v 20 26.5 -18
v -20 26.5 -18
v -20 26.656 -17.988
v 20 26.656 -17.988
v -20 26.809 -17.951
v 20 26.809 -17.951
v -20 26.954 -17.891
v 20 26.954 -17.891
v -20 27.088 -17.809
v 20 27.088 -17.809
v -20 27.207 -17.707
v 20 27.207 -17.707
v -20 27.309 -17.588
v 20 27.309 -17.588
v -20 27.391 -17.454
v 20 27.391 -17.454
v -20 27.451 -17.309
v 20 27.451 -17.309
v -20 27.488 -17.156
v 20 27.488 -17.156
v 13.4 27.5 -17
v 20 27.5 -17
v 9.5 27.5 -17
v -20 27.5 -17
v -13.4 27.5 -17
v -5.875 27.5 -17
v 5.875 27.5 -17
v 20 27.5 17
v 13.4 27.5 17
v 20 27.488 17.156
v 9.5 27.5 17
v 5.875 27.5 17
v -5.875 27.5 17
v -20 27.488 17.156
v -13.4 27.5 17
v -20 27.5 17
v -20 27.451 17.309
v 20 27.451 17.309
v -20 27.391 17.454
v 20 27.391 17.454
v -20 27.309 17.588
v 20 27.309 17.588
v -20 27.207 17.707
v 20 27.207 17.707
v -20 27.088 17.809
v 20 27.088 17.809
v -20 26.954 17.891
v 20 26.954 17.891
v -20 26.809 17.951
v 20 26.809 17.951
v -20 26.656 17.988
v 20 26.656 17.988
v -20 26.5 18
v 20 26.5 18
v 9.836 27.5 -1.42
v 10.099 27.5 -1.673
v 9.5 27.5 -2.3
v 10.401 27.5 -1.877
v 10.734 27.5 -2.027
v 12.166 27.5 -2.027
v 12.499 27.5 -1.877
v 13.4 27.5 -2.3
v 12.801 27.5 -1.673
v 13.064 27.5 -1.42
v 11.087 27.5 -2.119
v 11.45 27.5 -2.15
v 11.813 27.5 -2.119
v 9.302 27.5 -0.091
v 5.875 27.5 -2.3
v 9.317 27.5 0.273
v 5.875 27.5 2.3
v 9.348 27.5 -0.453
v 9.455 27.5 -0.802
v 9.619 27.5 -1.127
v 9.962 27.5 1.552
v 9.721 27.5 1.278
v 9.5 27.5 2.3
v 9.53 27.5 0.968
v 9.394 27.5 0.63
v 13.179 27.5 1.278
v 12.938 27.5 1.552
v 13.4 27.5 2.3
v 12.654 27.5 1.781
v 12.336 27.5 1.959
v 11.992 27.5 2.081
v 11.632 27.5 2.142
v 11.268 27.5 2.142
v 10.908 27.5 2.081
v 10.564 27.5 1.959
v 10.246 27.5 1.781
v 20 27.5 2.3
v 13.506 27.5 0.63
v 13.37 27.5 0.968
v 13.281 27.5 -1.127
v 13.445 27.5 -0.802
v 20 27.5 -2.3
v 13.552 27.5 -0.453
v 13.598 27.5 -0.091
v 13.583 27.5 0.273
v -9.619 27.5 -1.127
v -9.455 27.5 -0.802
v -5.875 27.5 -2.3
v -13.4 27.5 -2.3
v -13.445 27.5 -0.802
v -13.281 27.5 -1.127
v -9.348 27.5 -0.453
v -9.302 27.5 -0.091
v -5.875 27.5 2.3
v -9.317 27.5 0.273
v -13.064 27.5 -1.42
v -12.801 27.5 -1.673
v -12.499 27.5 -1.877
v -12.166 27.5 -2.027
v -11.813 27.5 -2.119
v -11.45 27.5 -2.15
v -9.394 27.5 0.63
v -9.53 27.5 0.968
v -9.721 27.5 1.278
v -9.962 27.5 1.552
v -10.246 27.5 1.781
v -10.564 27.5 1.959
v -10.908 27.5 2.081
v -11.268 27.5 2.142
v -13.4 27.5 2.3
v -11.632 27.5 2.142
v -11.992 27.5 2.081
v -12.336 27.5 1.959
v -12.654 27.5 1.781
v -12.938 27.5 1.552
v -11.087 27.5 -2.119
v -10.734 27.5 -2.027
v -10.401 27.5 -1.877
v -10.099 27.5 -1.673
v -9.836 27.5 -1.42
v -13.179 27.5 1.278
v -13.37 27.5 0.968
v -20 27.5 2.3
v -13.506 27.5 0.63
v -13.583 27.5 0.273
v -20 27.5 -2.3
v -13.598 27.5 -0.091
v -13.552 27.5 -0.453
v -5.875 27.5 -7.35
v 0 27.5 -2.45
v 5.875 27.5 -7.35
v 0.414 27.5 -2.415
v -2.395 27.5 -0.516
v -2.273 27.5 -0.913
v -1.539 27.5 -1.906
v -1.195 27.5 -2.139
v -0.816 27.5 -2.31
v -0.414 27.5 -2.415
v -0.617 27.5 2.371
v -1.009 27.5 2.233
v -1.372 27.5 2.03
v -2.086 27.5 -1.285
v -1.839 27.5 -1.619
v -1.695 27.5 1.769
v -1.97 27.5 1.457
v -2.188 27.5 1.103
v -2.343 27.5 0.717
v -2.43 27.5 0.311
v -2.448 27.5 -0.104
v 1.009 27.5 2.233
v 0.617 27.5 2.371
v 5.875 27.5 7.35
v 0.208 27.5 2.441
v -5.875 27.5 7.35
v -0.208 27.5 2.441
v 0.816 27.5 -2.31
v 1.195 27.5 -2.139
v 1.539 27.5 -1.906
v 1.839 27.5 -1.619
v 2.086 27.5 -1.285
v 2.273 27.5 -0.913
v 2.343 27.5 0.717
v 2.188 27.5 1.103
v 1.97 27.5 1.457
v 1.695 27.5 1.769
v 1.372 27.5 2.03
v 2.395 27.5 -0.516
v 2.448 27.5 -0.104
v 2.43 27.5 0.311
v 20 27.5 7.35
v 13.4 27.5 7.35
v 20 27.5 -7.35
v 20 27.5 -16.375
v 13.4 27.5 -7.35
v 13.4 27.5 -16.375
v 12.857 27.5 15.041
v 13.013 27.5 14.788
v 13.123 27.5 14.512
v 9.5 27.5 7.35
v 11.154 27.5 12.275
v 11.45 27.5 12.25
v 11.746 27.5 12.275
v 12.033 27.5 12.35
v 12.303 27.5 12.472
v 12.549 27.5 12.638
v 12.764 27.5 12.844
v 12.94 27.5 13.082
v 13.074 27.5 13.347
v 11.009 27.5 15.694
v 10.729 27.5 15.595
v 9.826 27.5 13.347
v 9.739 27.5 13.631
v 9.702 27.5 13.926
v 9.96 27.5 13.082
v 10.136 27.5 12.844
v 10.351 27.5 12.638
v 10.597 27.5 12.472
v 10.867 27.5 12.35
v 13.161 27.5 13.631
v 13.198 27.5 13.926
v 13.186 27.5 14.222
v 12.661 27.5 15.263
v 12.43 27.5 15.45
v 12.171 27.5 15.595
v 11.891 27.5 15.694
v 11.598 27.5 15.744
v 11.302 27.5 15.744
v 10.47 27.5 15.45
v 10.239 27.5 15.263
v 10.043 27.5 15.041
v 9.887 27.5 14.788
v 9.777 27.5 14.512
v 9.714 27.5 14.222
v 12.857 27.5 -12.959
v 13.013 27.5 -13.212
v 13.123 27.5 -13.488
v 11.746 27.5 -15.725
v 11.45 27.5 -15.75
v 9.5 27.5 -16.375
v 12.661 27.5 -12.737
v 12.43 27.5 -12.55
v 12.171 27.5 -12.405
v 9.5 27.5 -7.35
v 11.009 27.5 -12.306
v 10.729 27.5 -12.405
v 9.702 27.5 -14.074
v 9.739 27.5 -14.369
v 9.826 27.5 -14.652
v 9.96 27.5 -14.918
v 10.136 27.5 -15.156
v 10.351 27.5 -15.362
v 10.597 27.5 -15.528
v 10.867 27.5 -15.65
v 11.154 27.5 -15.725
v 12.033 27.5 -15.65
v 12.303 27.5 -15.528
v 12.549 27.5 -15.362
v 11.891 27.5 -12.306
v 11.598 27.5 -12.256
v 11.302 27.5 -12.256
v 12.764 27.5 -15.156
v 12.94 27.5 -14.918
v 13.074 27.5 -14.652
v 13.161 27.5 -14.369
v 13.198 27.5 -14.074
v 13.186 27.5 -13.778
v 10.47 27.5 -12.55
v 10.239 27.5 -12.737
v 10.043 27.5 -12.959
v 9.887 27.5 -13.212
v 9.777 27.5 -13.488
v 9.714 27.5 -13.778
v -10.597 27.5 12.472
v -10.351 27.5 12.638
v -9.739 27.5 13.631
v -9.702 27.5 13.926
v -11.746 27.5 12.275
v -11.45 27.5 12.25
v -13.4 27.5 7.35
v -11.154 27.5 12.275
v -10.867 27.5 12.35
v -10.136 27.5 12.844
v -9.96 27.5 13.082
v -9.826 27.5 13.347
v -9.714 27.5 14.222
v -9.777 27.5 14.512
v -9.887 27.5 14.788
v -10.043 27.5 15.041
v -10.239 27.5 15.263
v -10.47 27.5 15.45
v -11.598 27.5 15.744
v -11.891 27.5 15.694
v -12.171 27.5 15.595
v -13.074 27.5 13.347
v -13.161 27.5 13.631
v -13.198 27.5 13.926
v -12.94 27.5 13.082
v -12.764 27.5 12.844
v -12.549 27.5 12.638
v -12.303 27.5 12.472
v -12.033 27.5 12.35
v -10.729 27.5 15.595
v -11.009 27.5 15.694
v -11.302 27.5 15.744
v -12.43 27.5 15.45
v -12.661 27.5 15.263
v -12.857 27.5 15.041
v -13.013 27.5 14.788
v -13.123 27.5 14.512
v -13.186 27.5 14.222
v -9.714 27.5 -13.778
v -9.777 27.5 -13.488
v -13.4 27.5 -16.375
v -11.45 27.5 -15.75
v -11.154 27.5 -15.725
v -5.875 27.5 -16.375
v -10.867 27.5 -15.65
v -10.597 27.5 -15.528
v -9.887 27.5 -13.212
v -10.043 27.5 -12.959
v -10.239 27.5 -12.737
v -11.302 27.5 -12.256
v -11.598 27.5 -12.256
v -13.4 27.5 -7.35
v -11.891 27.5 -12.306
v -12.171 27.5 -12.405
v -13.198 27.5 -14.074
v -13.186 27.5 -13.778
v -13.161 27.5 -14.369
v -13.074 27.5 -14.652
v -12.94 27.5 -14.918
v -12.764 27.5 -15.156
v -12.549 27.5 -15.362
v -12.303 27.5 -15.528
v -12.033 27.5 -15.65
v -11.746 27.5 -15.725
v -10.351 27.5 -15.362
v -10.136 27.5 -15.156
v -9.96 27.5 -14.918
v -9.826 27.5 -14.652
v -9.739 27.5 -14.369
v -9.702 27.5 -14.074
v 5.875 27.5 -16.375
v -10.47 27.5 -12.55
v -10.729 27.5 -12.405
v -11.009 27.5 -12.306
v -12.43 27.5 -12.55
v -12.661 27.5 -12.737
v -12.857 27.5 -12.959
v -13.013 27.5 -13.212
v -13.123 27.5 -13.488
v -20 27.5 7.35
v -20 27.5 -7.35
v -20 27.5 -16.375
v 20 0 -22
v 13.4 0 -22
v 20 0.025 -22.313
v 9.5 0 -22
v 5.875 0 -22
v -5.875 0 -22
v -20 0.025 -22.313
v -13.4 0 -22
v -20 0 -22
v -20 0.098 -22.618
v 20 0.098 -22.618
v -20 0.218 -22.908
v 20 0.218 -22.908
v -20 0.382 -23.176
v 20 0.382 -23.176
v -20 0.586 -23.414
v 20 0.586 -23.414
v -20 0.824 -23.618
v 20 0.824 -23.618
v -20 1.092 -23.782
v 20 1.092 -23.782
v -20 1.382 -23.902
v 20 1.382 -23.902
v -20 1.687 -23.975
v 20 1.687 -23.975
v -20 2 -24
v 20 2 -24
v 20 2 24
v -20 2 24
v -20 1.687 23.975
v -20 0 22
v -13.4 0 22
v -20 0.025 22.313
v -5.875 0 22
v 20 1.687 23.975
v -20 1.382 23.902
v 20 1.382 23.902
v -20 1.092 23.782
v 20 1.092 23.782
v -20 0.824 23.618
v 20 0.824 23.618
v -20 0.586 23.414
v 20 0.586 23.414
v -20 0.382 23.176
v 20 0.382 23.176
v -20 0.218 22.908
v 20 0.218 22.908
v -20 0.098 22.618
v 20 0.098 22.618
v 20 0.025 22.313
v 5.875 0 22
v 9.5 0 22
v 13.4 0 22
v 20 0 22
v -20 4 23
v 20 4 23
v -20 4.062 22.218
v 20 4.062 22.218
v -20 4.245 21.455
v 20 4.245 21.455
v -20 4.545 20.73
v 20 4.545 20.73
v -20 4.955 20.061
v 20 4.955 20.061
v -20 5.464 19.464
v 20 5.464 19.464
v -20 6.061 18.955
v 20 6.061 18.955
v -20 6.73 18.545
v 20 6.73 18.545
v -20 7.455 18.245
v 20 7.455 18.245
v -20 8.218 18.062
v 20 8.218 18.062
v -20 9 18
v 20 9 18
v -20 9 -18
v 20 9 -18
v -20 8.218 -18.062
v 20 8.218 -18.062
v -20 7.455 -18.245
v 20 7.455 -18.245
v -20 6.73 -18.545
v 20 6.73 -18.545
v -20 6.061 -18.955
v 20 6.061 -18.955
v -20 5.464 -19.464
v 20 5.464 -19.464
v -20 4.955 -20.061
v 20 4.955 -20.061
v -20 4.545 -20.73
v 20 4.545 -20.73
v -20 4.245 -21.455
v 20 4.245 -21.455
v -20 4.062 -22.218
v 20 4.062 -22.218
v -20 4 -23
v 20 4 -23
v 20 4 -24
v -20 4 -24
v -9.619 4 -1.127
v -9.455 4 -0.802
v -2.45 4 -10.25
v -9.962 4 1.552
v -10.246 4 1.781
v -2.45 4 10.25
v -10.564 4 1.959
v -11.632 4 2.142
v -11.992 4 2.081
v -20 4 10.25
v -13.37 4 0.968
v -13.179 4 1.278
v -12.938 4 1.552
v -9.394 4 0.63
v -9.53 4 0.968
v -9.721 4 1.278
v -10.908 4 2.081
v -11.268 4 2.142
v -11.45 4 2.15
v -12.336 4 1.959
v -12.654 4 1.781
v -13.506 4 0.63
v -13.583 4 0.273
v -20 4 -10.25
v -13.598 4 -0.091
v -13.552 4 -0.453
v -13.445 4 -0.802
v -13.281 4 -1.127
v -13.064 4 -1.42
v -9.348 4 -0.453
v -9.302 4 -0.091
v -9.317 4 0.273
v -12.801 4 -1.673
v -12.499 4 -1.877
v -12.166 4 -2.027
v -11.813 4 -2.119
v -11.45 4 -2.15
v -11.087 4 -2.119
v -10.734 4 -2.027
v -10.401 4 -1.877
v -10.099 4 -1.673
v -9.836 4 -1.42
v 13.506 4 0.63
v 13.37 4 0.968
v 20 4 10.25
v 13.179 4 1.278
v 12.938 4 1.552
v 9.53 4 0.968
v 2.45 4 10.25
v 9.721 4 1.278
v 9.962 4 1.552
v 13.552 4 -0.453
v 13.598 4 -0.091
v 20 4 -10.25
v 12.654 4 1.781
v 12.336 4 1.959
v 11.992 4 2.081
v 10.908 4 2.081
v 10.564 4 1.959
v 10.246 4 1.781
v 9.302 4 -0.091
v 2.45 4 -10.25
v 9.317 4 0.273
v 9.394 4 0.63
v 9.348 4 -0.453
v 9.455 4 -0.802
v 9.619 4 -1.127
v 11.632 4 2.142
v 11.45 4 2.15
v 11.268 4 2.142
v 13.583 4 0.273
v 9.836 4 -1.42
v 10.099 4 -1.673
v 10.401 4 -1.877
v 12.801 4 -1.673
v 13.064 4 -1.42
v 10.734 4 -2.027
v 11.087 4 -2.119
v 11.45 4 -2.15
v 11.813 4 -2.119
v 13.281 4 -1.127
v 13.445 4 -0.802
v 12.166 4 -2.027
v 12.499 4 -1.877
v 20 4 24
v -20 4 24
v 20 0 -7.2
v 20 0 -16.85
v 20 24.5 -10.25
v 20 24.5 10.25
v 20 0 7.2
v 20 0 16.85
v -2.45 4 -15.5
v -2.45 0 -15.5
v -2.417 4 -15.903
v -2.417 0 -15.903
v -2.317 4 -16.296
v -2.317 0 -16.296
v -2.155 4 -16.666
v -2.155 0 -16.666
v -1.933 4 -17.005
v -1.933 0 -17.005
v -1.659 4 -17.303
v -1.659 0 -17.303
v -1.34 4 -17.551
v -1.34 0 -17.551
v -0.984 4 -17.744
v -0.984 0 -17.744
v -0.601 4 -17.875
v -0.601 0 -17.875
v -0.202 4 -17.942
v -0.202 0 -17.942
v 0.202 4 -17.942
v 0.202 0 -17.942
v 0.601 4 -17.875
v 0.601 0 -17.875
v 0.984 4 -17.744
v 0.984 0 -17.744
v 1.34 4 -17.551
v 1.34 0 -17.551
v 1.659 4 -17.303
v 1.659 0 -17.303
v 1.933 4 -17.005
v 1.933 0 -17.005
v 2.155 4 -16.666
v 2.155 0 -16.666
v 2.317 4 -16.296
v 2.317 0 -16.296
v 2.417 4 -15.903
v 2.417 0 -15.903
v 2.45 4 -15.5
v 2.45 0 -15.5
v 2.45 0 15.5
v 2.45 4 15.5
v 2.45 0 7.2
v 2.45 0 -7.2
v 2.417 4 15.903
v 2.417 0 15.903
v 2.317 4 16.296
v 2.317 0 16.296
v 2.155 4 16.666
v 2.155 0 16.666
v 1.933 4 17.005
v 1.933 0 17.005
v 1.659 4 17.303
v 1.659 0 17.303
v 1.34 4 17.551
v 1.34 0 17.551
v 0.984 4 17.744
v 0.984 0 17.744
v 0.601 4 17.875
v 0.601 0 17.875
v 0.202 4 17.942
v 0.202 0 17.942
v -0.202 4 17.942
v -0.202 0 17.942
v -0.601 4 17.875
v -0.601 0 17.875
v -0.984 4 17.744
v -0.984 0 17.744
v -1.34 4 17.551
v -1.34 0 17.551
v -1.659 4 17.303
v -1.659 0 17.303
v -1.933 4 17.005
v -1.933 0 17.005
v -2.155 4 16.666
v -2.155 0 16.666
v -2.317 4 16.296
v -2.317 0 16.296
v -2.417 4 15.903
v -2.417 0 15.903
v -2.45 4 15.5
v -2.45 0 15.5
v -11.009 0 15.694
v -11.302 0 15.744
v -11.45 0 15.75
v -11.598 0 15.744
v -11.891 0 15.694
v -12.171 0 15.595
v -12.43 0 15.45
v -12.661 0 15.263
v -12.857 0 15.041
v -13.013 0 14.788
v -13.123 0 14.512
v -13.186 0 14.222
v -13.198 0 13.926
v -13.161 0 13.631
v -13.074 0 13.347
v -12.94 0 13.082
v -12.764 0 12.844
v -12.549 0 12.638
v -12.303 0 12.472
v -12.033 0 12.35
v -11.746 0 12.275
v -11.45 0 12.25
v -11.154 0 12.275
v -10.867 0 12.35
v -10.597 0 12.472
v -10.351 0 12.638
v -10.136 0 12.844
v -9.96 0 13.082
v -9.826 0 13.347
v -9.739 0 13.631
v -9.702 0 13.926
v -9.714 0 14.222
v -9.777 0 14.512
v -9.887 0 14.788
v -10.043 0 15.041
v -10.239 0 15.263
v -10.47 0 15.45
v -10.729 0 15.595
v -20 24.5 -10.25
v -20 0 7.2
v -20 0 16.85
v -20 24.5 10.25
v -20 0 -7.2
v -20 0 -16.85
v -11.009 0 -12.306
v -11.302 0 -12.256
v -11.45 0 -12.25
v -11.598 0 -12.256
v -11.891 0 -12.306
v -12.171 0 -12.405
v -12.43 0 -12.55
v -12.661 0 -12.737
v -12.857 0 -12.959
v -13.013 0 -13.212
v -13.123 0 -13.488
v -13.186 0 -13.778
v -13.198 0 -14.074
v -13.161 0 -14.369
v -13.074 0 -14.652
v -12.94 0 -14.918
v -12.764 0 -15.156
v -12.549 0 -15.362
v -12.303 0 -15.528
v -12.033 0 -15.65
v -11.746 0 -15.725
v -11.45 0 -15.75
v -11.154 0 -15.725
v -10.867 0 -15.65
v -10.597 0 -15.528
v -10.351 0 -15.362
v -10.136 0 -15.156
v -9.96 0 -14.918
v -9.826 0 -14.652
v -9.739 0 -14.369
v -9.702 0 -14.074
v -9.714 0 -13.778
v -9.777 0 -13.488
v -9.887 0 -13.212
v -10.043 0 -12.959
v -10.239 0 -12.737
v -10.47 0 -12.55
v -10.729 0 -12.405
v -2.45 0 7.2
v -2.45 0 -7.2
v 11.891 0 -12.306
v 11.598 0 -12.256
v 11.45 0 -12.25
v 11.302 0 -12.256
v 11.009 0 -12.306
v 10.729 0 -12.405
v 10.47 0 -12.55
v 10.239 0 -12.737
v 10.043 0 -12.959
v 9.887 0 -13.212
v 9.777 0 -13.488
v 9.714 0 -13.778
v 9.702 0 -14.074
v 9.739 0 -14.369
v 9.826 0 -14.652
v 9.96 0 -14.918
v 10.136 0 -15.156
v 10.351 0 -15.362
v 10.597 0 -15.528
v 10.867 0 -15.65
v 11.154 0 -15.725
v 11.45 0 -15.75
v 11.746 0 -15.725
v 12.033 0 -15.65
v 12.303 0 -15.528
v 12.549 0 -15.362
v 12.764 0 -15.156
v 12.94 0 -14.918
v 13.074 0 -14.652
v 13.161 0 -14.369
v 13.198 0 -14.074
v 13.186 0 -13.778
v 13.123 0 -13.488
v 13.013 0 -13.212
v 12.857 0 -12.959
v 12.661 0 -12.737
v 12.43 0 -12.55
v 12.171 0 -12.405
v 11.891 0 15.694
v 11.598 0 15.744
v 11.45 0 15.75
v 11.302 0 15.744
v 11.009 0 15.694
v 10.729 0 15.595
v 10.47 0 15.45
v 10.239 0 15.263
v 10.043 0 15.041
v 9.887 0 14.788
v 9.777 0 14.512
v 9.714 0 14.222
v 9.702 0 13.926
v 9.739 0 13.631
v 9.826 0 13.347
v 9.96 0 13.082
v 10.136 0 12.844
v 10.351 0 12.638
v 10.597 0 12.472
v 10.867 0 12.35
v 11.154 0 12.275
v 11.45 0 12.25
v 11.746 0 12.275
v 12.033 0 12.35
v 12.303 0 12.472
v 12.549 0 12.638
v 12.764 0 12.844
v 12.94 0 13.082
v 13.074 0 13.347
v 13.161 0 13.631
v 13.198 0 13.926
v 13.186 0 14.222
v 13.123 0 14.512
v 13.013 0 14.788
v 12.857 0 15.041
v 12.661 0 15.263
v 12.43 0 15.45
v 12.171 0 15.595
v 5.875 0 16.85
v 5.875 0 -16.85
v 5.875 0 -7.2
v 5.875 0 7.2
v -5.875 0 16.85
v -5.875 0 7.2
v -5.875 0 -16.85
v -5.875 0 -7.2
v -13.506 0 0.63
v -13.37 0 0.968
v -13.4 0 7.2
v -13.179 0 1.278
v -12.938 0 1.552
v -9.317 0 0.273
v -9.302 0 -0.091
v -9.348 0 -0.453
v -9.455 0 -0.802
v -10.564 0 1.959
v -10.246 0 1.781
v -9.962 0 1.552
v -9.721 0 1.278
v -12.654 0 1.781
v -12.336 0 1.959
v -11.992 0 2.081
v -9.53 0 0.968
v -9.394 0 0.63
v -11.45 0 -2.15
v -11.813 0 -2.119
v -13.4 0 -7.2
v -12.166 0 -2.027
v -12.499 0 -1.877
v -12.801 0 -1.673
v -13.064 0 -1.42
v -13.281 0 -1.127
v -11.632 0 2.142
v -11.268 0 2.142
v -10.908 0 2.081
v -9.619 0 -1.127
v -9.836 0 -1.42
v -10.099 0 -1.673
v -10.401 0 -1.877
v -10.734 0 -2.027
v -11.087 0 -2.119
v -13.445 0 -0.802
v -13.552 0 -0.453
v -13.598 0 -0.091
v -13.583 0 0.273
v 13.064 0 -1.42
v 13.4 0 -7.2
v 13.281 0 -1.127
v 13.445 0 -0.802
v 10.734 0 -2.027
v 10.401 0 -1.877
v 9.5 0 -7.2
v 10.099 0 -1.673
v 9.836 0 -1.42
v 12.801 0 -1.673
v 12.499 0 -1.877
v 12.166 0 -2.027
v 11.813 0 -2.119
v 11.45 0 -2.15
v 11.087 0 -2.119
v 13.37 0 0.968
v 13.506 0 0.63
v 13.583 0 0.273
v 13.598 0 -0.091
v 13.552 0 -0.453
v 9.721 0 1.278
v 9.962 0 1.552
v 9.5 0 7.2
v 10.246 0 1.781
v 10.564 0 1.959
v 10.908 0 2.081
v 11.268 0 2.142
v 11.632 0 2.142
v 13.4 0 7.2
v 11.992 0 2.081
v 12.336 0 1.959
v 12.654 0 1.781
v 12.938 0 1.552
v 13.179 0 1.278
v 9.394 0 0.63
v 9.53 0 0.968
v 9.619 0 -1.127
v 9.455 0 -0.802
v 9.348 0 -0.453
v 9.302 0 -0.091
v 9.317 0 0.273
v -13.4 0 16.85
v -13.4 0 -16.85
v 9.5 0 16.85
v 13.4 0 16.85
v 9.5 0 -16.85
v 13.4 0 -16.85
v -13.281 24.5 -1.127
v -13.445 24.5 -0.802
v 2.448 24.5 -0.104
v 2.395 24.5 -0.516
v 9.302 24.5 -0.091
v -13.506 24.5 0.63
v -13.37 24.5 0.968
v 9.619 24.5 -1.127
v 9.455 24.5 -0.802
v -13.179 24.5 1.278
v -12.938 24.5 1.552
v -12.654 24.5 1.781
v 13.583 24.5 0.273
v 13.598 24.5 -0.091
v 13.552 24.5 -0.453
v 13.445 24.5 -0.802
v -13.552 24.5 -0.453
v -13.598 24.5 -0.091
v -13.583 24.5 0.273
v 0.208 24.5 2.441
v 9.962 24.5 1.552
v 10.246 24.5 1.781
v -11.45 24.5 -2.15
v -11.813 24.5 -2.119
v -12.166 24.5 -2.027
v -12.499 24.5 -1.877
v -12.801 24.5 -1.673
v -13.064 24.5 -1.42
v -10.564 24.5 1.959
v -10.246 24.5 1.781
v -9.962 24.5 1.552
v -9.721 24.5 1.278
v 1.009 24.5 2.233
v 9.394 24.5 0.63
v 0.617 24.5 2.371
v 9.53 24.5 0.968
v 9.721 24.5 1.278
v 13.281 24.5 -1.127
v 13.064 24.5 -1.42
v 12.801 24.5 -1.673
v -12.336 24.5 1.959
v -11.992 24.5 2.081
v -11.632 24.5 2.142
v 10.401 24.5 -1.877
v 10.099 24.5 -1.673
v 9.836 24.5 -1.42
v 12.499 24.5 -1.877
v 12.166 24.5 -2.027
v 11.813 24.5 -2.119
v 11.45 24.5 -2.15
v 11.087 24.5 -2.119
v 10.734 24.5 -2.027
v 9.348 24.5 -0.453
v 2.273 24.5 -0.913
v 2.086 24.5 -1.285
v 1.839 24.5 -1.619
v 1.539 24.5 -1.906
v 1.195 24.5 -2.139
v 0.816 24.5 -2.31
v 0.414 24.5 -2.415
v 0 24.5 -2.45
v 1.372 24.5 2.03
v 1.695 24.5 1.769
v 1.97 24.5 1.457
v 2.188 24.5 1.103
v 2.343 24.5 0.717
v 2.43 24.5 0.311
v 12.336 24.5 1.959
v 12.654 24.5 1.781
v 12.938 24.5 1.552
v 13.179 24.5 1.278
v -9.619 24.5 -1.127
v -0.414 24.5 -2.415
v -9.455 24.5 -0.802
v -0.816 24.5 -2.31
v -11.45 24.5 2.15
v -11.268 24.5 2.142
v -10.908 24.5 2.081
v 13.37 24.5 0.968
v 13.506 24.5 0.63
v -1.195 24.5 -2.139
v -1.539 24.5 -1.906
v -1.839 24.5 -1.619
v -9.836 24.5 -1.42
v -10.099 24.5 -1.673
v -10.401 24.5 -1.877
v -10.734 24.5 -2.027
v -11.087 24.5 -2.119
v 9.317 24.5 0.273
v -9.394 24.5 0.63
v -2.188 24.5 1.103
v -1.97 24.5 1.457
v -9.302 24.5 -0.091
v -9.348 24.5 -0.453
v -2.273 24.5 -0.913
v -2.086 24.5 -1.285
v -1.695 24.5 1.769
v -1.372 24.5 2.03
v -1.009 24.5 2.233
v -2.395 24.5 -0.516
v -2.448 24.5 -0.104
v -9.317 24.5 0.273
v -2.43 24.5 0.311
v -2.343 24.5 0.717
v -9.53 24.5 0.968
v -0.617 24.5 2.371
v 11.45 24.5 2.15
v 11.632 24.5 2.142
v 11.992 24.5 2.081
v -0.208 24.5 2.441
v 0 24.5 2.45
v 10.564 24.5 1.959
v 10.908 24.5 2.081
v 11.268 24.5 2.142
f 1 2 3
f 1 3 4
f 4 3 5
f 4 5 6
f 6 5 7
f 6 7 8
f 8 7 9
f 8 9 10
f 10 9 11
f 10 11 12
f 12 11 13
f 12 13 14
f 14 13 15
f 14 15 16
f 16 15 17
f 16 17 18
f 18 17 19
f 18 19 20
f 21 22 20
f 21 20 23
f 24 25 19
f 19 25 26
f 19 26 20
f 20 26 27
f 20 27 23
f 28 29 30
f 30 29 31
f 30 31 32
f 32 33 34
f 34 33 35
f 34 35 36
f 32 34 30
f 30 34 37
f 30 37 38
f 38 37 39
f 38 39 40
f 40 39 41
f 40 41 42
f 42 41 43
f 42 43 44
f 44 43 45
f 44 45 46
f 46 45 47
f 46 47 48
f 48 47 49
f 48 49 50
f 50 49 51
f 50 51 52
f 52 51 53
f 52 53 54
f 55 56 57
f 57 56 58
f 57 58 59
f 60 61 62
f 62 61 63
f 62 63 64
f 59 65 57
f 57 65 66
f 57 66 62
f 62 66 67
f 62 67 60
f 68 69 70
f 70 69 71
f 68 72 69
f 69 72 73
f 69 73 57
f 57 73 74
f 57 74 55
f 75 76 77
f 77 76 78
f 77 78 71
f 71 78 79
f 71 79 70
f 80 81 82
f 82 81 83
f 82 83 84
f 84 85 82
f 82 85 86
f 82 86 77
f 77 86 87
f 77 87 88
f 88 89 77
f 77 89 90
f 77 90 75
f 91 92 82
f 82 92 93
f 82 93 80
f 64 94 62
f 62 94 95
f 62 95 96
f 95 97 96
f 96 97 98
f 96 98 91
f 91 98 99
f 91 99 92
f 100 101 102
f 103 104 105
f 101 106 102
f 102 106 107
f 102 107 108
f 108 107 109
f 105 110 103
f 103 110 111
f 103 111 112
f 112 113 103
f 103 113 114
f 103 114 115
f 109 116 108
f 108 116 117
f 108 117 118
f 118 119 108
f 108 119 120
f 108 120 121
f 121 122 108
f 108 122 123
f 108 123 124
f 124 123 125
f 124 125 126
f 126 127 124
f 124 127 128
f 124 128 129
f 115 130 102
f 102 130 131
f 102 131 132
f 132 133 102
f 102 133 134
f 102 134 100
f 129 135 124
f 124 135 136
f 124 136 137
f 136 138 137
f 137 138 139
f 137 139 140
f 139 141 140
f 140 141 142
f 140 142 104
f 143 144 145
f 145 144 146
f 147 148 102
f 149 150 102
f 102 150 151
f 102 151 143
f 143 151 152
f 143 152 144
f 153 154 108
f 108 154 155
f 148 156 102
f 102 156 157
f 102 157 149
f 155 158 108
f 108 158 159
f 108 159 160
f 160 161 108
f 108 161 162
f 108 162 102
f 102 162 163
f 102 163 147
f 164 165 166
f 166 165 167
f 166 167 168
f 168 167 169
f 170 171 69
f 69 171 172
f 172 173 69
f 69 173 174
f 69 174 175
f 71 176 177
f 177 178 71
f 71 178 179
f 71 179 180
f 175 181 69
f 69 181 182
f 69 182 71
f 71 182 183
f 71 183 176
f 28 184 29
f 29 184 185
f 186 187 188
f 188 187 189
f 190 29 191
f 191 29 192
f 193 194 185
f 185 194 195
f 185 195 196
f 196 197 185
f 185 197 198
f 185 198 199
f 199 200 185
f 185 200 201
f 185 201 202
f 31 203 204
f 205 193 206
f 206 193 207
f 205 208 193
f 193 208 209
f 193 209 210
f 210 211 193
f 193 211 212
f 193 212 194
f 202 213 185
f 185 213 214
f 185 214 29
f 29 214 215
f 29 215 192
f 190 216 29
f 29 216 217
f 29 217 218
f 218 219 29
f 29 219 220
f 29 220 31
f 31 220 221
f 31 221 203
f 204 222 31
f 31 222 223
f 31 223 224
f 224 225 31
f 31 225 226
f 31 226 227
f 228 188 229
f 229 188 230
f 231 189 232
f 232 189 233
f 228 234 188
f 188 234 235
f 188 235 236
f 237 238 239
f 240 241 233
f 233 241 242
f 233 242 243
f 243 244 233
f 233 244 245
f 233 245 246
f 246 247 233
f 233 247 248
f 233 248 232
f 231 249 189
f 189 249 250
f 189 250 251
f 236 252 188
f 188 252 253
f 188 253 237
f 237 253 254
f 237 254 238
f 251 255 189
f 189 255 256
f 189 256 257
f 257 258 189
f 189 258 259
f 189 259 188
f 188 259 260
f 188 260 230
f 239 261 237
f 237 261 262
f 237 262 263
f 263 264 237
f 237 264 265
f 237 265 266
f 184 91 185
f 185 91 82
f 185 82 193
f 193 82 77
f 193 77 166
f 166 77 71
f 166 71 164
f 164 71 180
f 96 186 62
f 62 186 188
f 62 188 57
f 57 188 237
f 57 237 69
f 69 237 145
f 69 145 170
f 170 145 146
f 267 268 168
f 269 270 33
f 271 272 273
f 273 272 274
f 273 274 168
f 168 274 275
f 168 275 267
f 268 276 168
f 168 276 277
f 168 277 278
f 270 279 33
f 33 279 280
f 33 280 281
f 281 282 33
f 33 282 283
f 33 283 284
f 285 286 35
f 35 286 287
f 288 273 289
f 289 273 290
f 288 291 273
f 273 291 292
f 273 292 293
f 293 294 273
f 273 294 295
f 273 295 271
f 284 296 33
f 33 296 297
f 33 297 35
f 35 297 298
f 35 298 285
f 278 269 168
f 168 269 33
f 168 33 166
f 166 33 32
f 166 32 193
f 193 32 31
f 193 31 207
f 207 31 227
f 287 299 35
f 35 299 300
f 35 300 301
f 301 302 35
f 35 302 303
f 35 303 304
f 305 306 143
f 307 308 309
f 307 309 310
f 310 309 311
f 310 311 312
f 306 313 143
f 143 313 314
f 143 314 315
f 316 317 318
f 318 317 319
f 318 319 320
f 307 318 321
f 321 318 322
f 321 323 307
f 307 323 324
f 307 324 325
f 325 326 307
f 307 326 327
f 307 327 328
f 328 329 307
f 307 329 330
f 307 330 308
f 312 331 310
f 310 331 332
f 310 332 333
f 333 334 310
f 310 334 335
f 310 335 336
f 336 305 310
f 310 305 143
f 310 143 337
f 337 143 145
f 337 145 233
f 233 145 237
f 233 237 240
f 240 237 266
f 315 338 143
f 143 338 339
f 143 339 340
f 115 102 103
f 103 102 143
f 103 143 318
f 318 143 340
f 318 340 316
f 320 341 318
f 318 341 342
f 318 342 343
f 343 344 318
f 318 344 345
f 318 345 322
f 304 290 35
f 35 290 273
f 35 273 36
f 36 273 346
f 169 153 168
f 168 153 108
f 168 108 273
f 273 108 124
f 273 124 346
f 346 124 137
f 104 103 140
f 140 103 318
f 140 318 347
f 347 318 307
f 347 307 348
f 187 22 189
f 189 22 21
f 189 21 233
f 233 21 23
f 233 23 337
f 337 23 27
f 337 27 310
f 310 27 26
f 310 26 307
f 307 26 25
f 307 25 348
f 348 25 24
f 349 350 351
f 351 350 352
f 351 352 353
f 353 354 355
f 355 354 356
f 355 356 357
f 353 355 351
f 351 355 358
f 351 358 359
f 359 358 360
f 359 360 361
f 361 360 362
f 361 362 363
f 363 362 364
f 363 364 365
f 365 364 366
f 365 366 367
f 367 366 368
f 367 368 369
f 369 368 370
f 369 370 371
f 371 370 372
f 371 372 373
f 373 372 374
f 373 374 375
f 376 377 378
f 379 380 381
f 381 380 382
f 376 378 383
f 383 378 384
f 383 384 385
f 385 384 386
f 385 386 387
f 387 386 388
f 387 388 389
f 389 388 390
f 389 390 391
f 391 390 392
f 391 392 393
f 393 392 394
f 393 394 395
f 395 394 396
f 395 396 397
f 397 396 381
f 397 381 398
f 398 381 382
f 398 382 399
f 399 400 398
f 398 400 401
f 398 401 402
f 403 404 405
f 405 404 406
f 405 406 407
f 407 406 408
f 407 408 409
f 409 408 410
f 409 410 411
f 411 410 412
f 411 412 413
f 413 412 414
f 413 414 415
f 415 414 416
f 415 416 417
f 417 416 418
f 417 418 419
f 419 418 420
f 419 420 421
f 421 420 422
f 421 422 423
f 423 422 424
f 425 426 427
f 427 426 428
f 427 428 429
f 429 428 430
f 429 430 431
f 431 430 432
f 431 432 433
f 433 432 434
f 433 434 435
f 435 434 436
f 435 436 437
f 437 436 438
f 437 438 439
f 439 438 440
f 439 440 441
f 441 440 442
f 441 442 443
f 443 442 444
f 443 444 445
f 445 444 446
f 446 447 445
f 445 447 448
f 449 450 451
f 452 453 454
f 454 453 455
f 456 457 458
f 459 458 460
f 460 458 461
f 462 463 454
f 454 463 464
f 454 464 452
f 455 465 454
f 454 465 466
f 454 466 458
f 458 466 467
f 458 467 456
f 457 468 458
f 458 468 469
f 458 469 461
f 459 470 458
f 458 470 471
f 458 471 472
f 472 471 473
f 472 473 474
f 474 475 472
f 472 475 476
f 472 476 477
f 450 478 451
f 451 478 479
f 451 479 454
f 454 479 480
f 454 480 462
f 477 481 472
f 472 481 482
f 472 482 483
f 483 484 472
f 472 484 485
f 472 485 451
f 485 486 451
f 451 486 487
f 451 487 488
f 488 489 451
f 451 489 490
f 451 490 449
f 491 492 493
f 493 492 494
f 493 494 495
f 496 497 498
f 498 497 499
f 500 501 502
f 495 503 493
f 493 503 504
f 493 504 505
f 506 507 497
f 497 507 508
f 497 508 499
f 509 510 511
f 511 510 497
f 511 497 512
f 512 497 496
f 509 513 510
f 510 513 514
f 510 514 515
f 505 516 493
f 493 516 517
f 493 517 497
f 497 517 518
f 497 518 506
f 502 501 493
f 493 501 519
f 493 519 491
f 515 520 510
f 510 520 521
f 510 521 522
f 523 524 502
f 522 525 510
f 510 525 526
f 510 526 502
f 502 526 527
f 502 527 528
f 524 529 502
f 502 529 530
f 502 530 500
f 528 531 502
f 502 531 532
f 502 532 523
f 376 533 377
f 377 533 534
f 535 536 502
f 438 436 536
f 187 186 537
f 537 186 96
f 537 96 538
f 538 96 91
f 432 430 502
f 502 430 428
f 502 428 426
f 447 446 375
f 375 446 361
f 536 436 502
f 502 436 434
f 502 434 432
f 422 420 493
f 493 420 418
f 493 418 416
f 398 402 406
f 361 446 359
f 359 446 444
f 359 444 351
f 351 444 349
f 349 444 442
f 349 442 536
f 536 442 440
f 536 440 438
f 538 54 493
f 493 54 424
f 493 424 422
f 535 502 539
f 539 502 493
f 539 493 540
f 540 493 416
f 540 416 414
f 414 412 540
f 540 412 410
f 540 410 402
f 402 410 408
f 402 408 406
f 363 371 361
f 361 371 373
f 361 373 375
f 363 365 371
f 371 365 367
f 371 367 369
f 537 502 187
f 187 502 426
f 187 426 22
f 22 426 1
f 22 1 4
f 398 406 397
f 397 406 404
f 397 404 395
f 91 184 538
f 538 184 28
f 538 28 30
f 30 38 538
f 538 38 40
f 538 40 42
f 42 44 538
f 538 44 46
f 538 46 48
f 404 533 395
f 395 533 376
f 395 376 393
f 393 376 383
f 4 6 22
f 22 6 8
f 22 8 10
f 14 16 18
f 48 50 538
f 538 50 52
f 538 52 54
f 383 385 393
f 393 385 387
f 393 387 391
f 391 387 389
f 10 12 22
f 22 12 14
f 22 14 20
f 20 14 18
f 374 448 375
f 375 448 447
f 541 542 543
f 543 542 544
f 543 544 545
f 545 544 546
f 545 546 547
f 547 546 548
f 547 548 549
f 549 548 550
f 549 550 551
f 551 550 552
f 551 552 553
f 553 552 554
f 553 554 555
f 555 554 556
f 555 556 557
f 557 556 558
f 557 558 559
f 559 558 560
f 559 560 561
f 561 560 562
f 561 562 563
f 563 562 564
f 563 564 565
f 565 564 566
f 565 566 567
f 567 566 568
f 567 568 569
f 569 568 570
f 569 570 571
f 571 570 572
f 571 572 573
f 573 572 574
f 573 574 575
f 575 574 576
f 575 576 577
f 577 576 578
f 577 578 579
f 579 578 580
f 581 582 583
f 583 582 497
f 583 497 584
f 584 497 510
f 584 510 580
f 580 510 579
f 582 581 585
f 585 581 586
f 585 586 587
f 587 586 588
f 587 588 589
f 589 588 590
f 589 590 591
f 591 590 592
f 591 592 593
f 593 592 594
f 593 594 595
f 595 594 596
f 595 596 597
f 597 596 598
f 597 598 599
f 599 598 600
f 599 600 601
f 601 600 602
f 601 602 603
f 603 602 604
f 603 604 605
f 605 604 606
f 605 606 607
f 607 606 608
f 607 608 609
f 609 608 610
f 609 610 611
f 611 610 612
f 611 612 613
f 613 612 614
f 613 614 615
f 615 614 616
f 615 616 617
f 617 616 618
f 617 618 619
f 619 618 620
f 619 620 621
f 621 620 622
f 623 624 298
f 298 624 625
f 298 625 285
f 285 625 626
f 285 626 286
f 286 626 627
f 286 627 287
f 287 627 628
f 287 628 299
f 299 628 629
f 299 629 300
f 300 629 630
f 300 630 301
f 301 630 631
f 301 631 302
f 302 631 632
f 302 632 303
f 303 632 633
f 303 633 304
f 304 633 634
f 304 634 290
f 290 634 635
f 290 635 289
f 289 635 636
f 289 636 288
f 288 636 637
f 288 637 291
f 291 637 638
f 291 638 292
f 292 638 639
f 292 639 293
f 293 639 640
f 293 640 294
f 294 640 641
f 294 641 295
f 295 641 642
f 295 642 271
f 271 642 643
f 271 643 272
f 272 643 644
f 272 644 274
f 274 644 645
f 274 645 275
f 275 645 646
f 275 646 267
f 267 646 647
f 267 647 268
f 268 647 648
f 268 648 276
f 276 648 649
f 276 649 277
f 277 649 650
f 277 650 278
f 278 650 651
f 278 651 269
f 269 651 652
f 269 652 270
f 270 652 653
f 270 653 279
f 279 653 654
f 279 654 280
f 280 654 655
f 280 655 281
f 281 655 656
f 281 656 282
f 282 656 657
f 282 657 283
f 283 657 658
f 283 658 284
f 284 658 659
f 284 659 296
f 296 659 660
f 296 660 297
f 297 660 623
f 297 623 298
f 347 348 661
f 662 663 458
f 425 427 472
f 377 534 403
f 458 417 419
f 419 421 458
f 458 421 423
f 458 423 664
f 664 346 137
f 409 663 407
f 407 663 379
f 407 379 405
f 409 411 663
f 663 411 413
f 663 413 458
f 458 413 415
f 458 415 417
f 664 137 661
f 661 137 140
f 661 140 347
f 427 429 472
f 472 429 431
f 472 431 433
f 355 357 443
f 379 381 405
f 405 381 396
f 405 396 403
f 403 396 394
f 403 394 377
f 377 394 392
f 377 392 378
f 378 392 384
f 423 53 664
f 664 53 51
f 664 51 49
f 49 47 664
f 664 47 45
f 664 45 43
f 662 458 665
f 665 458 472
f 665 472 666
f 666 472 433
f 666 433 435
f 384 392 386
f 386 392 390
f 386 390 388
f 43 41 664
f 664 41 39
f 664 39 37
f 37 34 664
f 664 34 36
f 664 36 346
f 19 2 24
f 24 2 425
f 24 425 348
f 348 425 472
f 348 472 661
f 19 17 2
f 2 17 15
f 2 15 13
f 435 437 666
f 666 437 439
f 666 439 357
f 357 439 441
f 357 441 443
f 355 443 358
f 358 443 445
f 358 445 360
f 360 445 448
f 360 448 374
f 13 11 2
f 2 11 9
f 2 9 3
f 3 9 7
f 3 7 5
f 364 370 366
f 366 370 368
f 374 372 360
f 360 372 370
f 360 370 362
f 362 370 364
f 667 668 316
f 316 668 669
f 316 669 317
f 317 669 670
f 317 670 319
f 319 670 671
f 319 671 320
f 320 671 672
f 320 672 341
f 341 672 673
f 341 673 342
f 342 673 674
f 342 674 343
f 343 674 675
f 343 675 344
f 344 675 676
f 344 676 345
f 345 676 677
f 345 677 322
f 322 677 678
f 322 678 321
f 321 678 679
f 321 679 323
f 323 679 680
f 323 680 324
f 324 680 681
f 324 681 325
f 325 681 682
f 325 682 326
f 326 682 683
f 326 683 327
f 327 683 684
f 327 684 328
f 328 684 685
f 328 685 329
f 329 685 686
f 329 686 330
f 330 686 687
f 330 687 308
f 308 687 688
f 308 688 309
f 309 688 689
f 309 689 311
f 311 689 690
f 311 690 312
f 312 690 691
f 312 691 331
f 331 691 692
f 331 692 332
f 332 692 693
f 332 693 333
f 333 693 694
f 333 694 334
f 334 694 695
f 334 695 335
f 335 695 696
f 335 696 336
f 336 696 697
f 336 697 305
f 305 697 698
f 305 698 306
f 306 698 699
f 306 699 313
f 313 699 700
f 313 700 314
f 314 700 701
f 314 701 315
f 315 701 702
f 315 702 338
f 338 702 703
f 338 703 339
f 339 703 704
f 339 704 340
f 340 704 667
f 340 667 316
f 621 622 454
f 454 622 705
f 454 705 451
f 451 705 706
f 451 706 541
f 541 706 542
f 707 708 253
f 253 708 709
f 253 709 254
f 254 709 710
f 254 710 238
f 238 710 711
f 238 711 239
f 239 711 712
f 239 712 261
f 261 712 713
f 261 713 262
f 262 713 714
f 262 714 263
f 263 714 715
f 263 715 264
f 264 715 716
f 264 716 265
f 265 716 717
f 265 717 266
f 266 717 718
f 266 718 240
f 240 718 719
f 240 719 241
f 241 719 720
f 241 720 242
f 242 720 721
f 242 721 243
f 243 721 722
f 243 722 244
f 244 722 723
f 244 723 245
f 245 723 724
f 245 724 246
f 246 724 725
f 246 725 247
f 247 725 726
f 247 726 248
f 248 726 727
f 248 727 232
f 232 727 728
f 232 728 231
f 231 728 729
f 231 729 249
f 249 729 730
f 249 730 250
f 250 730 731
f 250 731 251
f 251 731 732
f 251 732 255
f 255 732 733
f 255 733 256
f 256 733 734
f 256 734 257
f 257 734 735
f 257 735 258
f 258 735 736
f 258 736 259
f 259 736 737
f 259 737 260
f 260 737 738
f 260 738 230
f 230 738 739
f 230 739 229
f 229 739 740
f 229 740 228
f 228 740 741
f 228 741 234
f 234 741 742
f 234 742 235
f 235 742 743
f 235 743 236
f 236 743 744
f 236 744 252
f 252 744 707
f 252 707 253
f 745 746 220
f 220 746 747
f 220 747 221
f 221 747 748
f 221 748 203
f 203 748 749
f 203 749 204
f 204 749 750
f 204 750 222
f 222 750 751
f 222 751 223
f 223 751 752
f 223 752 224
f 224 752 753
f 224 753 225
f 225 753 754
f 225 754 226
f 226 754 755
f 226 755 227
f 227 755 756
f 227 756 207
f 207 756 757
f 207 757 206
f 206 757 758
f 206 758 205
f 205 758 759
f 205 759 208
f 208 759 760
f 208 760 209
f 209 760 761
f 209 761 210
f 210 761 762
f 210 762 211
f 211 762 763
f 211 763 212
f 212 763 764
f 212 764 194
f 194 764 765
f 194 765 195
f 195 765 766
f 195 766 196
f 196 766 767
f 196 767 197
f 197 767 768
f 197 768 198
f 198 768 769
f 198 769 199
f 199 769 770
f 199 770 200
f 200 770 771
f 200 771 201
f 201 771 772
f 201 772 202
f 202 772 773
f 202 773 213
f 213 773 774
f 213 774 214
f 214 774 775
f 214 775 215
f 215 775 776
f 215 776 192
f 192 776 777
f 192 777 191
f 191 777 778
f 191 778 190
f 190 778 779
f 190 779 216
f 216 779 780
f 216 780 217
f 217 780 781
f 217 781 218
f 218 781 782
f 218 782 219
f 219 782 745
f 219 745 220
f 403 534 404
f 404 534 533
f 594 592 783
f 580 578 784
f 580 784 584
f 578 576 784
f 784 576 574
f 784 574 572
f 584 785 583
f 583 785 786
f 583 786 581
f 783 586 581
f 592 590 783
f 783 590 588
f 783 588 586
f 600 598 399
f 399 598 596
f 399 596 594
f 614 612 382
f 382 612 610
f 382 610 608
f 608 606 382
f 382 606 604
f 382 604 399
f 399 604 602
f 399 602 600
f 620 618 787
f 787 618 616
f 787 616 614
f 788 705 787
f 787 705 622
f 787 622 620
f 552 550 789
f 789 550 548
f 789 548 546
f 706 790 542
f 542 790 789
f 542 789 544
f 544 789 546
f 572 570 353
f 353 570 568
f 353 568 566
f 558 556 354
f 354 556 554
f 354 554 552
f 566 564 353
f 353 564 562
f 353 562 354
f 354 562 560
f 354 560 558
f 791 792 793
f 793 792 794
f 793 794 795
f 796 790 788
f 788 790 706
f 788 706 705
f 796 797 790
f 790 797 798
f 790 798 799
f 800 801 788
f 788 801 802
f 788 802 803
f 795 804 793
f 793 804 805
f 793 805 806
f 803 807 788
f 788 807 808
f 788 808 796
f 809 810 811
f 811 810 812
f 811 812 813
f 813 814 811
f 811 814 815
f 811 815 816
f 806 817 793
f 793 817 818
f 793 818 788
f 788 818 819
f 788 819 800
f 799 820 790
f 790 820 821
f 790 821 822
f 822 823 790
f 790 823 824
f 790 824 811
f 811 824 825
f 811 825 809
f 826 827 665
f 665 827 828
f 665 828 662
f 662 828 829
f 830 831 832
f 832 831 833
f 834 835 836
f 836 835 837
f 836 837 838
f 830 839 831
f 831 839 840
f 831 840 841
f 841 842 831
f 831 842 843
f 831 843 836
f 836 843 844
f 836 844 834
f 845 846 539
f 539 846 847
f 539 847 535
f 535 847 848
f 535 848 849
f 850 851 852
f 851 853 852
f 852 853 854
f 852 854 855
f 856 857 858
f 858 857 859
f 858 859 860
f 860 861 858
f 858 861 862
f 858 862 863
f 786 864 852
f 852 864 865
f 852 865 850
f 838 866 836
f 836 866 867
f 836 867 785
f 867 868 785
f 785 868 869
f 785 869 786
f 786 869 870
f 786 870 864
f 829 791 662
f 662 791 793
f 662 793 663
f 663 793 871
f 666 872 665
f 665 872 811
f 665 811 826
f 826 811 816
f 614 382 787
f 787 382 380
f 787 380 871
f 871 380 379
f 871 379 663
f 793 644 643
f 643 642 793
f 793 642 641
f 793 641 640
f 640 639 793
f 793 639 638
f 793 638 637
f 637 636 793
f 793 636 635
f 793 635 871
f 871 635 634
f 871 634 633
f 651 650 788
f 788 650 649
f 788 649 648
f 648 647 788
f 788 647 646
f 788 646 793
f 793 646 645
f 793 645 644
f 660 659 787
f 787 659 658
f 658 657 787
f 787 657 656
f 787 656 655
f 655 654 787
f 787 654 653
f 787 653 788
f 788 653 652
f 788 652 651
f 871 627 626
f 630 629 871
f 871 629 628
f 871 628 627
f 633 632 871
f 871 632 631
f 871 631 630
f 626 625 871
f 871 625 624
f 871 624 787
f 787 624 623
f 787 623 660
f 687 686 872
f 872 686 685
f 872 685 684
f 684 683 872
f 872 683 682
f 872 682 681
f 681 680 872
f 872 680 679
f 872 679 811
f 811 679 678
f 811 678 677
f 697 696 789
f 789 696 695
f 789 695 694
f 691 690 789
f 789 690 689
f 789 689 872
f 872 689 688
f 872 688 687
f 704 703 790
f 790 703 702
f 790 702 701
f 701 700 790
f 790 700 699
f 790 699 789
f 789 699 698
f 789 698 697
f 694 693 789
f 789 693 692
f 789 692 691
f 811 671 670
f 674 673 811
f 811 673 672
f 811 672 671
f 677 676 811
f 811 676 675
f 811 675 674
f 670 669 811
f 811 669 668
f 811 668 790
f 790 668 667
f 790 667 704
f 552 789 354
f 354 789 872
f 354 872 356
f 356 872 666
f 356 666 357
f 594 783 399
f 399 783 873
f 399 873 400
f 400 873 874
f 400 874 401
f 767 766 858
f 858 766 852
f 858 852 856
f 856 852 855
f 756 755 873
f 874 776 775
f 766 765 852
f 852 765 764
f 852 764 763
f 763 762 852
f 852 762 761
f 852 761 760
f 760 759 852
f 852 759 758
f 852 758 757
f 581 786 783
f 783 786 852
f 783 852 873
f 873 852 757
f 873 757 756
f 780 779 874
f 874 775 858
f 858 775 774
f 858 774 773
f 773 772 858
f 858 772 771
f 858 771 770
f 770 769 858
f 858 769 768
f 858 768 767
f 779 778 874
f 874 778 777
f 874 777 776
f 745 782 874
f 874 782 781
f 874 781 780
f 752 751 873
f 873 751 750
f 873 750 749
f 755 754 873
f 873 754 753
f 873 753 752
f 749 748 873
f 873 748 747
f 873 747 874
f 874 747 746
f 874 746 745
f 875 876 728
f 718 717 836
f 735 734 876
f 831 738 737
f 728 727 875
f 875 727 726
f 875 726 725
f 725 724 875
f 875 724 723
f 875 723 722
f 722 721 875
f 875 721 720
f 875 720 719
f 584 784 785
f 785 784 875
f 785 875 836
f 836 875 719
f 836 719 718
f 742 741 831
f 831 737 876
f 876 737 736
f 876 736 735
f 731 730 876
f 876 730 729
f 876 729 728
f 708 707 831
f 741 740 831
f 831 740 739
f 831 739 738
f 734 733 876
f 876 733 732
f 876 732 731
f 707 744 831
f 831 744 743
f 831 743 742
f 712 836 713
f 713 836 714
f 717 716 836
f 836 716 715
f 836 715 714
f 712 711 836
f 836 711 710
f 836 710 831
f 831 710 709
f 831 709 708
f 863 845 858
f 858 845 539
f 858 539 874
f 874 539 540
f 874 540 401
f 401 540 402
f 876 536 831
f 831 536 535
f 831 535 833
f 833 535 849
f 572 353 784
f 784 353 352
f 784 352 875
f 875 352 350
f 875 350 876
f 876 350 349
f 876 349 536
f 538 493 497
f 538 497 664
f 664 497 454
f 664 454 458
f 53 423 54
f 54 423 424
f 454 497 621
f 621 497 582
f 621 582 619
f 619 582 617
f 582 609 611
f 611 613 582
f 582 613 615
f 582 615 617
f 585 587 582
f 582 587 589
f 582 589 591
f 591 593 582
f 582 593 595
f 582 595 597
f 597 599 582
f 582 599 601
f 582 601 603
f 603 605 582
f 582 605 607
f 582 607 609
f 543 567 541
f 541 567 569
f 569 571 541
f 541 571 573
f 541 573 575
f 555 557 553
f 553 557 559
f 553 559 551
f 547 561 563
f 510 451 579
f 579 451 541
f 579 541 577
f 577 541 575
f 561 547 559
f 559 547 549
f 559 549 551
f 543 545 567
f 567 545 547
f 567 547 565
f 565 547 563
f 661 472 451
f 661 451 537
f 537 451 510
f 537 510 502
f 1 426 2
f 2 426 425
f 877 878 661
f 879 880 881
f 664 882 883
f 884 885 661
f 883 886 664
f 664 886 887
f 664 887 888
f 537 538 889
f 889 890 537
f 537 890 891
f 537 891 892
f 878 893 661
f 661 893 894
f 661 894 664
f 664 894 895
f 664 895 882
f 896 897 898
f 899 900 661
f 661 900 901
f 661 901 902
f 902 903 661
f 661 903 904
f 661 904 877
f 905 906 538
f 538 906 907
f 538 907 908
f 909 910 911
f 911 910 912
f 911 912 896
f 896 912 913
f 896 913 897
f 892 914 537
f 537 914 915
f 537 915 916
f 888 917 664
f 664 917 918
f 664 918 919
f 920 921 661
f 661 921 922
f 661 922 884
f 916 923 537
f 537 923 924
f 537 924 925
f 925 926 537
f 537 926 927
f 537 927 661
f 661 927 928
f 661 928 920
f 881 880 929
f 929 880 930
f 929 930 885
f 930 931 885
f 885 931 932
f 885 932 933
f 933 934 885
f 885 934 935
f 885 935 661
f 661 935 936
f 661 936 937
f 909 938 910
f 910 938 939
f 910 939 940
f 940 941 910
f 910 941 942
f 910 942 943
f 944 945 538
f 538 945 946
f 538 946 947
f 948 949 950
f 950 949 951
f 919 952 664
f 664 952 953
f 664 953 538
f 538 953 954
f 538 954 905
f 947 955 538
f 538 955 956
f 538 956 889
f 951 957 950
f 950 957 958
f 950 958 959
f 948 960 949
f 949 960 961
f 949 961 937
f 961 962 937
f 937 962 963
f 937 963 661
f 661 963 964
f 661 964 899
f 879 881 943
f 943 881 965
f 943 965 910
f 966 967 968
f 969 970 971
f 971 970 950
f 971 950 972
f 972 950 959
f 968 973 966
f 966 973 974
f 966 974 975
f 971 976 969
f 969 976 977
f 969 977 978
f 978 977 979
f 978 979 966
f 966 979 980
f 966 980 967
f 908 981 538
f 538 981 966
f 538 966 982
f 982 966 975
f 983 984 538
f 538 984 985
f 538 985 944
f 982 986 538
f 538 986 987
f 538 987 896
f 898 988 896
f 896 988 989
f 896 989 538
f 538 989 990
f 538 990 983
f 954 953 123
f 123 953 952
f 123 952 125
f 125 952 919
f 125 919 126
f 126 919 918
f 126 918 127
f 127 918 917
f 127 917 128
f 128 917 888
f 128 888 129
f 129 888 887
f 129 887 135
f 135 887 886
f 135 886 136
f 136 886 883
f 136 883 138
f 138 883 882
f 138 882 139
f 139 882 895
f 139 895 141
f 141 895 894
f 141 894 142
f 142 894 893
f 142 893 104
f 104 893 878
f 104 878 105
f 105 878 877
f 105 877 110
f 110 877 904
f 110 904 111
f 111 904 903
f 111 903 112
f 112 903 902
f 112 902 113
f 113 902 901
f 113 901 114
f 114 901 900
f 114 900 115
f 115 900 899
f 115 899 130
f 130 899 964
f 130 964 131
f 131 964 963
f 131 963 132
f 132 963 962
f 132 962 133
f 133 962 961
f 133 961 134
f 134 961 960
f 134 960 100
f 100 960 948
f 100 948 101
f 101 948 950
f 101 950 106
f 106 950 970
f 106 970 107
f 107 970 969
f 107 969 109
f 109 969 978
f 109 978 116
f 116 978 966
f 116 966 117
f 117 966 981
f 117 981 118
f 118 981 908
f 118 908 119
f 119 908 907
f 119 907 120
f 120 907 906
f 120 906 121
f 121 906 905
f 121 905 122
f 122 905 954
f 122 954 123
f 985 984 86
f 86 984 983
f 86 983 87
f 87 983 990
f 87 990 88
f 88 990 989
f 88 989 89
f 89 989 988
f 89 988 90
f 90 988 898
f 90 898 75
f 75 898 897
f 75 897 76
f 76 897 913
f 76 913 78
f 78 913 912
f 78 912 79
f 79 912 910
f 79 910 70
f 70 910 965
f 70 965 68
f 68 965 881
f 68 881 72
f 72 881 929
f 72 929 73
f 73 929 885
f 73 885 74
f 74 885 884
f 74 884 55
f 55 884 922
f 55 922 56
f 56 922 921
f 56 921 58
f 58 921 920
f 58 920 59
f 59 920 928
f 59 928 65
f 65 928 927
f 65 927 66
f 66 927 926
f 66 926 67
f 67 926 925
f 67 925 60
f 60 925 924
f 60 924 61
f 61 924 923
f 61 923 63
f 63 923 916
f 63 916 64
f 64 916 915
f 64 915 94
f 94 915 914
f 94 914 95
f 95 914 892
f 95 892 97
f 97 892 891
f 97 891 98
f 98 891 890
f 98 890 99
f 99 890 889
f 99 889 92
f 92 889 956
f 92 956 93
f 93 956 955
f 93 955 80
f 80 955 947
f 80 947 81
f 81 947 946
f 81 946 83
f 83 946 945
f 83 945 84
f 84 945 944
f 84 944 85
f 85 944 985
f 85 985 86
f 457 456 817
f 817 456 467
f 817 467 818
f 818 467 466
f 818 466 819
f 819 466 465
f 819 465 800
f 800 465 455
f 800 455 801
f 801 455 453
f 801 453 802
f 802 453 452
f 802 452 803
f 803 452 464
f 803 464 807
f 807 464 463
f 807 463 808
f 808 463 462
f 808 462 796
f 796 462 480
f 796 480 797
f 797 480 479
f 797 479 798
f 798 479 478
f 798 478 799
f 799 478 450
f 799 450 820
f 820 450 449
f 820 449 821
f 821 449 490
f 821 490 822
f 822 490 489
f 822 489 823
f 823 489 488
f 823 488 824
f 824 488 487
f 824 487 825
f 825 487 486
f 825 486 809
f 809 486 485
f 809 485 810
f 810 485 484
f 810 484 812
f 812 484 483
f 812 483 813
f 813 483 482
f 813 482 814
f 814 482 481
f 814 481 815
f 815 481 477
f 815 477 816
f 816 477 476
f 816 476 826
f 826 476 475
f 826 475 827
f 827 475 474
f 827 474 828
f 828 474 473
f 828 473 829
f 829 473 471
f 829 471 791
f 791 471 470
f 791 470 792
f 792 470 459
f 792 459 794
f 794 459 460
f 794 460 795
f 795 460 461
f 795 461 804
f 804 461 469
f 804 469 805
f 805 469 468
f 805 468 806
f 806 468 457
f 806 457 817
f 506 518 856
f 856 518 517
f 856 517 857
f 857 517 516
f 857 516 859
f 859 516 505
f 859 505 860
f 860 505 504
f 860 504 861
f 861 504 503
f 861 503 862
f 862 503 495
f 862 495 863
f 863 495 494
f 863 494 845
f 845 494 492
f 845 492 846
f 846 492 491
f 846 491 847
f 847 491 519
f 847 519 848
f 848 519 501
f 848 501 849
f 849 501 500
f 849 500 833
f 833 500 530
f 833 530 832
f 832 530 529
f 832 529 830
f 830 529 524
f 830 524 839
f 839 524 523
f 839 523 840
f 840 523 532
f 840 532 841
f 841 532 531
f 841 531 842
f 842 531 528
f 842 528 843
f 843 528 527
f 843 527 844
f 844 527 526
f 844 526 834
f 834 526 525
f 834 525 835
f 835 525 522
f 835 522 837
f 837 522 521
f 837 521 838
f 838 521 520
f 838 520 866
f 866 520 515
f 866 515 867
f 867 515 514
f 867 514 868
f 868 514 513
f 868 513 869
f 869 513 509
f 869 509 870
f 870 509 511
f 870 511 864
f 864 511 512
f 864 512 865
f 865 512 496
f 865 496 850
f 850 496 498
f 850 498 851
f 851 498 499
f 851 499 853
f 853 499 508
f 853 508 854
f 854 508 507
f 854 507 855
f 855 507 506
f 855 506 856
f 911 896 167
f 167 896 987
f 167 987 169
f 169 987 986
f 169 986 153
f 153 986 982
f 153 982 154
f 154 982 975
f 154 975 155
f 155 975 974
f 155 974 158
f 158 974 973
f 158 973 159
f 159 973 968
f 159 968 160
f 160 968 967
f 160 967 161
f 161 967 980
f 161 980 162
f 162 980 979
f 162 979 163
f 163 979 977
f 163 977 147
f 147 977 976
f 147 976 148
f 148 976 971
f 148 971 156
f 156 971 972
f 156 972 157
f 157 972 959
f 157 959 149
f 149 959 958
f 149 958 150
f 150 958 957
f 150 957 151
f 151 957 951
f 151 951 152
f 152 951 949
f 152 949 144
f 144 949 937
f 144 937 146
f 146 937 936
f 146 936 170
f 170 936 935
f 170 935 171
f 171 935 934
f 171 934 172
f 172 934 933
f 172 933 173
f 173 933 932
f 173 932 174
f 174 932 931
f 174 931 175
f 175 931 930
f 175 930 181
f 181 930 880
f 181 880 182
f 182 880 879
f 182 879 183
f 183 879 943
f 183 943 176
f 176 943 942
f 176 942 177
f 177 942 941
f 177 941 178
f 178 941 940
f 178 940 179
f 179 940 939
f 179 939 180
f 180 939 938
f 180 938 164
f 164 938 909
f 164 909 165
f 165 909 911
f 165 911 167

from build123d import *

# Parameters (mm, degrees)
SKETCH_1_W                = 40
SKETCH_1_H                = 48
SKETCH_1_R                = 1.75
EXTRUDE_1_DEPTH           = 4
SKETCH_2_W                = 40
SKETCH_2_H                = 7.75
EXTRUDE_5_DEPTH           = 20.5
SKETCH_4_W                = 40
SKETCH_4_H                = 36
EXTRUDE_6_DEPTH           = 3
FILLET_4_R                = 5
FILLET_5_R                = 5
FILLET_7_R                = 2
FILLET_8_R                = 2
CUT_EXTRUDE_START         = -27.5
CUT_EXTRUDE_1_OUTLINE_R   = 1.75
CUT_EXTRUDE_1_OUTLINE_R_2 = 2.15
CUT_EXTRUDE_1_DEPTH       = 27.5
FILLET_9_R                = 1
FILLET_10_R               = 1
SKETCH_6_R                = 2.45
CUT_EXTRUDE_2_DEPTH       = 42.620307543


# Read off the part's stored shape, not the designer's step: 切除-拉伸1
with BuildPart() as part:
    # 草图1 → 凸台-拉伸1 (new body)
    with BuildSketch(Plane(origin=(0, 0, 0), x_dir=(1, 0, 0), z_dir=(0, 1, 0))):
        Rectangle(SKETCH_1_W, SKETCH_1_H)
        with Locations(Location((11.45, 14, 0), (0, 0, 270))):
            Circle(SKETCH_1_R, mode=Mode.SUBTRACT)
        with Locations(Location((-11.45, 14, 0), (0, 0, 270))):
            Circle(SKETCH_1_R, mode=Mode.SUBTRACT)
        with Locations(Location((-11.45, -14, 0), (0, 0, 270))):
            Circle(SKETCH_1_R, mode=Mode.SUBTRACT)
        with Locations(Location((11.45, -14, 0), (0, 0, 270))):
            Circle(SKETCH_1_R, mode=Mode.SUBTRACT)
        with BuildLine():
            Line((-2.45, -15.5), (-2.45, 15.5))
            ThreePointArc((-2.45, 15.5), (0, 17.95), (2.45, 15.5))
            Line((2.45, 15.5), (2.45, -15.5))
            ThreePointArc((2.45, -15.5), (0, -17.95), (-2.45, -15.5))
        make_face(mode=Mode.SUBTRACT)
    extrude(amount=EXTRUDE_1_DEPTH)

    # 草图2 → 凸台-拉伸5 (add)
    with BuildSketch(Plane(origin=(0, 4, 0), x_dir=(1, 0, 0), z_dir=(0, 1, 0))):
        with Locations((0, -14.125)):
            Rectangle(SKETCH_2_W, SKETCH_2_H)
        with Locations((0, 14.125)):
            Rectangle(SKETCH_2_W, SKETCH_2_H)
    extrude(amount=EXTRUDE_5_DEPTH)

    # 草图4 → 凸台-拉伸6 (add)
    with BuildSketch(Plane(origin=(0, 24.5, 0), x_dir=(1, 0, 0), z_dir=(0, 1, 0))):
        Rectangle(SKETCH_4_W, SKETCH_4_H)
    extrude(amount=EXTRUDE_6_DEPTH)

    # 圆角4
    fillet_4_edges = [part.edges().sort_by_distance(p)[0] for p in [
        (0, 4, -18),
    ]]
    fillet(fillet_4_edges, radius=FILLET_4_R)

    # 圆角5
    fillet_5_edges = [part.edges().sort_by_distance(p)[0] for p in [
        (0, 4, 18),
    ]]
    fillet(fillet_5_edges, radius=FILLET_5_R)

    # 圆角7
    fillet_7_edges = [part.edges().sort_by_distance(p)[0] for p in [
        (0, 0, 24),
    ]]
    fillet(fillet_7_edges, radius=FILLET_7_R)

    # 圆角8
    fillet_8_edges = [part.edges().sort_by_distance(p)[0] for p in [
        (0, 0, -24),
    ]]
    fillet(fillet_8_edges, radius=FILLET_8_R)

    # 切除-拉伸1 outline → 切除-拉伸1 (cut)
    with BuildSketch(Plane.XZ.offset(CUT_EXTRUDE_START)):
        with Locations((-11.45, 14)):
            Circle(CUT_EXTRUDE_1_OUTLINE_R)
        with Locations((-11.45, -14)):
            Circle(CUT_EXTRUDE_1_OUTLINE_R)
        with Locations((11.45, -14)):
            Circle(CUT_EXTRUDE_1_OUTLINE_R)
        with Locations((11.45, 14)):
            Circle(CUT_EXTRUDE_1_OUTLINE_R)
        with Locations((-11.45, 0)):
            Circle(CUT_EXTRUDE_1_OUTLINE_R_2)
        with Locations((11.45, 0)):
            Circle(CUT_EXTRUDE_1_OUTLINE_R_2)
    extrude(amount=CUT_EXTRUDE_1_DEPTH, mode=Mode.SUBTRACT)

    # 圆角9
    fillet_9_edges = [part.edges().sort_by_distance(p)[0] for p in [
        (0, 27.5, 18),
    ]]
    fillet(fillet_9_edges, radius=FILLET_9_R)

    # 圆角10
    fillet_10_edges = [part.edges().sort_by_distance(p)[0] for p in [
        (0, 27.5, -18),
    ]]
    fillet(fillet_10_edges, radius=FILLET_10_R)

    # 草图6 → 切除-拉伸2 (cut, through all)
    with BuildSketch(Plane.XZ):
        with Locations(Location((0, 0, 0), (0, 0, 270))):
            Circle(SKETCH_6_R)
    extrude(amount=-CUT_EXTRUDE_2_DEPTH, mode=Mode.SUBTRACT)


solid = part.part
